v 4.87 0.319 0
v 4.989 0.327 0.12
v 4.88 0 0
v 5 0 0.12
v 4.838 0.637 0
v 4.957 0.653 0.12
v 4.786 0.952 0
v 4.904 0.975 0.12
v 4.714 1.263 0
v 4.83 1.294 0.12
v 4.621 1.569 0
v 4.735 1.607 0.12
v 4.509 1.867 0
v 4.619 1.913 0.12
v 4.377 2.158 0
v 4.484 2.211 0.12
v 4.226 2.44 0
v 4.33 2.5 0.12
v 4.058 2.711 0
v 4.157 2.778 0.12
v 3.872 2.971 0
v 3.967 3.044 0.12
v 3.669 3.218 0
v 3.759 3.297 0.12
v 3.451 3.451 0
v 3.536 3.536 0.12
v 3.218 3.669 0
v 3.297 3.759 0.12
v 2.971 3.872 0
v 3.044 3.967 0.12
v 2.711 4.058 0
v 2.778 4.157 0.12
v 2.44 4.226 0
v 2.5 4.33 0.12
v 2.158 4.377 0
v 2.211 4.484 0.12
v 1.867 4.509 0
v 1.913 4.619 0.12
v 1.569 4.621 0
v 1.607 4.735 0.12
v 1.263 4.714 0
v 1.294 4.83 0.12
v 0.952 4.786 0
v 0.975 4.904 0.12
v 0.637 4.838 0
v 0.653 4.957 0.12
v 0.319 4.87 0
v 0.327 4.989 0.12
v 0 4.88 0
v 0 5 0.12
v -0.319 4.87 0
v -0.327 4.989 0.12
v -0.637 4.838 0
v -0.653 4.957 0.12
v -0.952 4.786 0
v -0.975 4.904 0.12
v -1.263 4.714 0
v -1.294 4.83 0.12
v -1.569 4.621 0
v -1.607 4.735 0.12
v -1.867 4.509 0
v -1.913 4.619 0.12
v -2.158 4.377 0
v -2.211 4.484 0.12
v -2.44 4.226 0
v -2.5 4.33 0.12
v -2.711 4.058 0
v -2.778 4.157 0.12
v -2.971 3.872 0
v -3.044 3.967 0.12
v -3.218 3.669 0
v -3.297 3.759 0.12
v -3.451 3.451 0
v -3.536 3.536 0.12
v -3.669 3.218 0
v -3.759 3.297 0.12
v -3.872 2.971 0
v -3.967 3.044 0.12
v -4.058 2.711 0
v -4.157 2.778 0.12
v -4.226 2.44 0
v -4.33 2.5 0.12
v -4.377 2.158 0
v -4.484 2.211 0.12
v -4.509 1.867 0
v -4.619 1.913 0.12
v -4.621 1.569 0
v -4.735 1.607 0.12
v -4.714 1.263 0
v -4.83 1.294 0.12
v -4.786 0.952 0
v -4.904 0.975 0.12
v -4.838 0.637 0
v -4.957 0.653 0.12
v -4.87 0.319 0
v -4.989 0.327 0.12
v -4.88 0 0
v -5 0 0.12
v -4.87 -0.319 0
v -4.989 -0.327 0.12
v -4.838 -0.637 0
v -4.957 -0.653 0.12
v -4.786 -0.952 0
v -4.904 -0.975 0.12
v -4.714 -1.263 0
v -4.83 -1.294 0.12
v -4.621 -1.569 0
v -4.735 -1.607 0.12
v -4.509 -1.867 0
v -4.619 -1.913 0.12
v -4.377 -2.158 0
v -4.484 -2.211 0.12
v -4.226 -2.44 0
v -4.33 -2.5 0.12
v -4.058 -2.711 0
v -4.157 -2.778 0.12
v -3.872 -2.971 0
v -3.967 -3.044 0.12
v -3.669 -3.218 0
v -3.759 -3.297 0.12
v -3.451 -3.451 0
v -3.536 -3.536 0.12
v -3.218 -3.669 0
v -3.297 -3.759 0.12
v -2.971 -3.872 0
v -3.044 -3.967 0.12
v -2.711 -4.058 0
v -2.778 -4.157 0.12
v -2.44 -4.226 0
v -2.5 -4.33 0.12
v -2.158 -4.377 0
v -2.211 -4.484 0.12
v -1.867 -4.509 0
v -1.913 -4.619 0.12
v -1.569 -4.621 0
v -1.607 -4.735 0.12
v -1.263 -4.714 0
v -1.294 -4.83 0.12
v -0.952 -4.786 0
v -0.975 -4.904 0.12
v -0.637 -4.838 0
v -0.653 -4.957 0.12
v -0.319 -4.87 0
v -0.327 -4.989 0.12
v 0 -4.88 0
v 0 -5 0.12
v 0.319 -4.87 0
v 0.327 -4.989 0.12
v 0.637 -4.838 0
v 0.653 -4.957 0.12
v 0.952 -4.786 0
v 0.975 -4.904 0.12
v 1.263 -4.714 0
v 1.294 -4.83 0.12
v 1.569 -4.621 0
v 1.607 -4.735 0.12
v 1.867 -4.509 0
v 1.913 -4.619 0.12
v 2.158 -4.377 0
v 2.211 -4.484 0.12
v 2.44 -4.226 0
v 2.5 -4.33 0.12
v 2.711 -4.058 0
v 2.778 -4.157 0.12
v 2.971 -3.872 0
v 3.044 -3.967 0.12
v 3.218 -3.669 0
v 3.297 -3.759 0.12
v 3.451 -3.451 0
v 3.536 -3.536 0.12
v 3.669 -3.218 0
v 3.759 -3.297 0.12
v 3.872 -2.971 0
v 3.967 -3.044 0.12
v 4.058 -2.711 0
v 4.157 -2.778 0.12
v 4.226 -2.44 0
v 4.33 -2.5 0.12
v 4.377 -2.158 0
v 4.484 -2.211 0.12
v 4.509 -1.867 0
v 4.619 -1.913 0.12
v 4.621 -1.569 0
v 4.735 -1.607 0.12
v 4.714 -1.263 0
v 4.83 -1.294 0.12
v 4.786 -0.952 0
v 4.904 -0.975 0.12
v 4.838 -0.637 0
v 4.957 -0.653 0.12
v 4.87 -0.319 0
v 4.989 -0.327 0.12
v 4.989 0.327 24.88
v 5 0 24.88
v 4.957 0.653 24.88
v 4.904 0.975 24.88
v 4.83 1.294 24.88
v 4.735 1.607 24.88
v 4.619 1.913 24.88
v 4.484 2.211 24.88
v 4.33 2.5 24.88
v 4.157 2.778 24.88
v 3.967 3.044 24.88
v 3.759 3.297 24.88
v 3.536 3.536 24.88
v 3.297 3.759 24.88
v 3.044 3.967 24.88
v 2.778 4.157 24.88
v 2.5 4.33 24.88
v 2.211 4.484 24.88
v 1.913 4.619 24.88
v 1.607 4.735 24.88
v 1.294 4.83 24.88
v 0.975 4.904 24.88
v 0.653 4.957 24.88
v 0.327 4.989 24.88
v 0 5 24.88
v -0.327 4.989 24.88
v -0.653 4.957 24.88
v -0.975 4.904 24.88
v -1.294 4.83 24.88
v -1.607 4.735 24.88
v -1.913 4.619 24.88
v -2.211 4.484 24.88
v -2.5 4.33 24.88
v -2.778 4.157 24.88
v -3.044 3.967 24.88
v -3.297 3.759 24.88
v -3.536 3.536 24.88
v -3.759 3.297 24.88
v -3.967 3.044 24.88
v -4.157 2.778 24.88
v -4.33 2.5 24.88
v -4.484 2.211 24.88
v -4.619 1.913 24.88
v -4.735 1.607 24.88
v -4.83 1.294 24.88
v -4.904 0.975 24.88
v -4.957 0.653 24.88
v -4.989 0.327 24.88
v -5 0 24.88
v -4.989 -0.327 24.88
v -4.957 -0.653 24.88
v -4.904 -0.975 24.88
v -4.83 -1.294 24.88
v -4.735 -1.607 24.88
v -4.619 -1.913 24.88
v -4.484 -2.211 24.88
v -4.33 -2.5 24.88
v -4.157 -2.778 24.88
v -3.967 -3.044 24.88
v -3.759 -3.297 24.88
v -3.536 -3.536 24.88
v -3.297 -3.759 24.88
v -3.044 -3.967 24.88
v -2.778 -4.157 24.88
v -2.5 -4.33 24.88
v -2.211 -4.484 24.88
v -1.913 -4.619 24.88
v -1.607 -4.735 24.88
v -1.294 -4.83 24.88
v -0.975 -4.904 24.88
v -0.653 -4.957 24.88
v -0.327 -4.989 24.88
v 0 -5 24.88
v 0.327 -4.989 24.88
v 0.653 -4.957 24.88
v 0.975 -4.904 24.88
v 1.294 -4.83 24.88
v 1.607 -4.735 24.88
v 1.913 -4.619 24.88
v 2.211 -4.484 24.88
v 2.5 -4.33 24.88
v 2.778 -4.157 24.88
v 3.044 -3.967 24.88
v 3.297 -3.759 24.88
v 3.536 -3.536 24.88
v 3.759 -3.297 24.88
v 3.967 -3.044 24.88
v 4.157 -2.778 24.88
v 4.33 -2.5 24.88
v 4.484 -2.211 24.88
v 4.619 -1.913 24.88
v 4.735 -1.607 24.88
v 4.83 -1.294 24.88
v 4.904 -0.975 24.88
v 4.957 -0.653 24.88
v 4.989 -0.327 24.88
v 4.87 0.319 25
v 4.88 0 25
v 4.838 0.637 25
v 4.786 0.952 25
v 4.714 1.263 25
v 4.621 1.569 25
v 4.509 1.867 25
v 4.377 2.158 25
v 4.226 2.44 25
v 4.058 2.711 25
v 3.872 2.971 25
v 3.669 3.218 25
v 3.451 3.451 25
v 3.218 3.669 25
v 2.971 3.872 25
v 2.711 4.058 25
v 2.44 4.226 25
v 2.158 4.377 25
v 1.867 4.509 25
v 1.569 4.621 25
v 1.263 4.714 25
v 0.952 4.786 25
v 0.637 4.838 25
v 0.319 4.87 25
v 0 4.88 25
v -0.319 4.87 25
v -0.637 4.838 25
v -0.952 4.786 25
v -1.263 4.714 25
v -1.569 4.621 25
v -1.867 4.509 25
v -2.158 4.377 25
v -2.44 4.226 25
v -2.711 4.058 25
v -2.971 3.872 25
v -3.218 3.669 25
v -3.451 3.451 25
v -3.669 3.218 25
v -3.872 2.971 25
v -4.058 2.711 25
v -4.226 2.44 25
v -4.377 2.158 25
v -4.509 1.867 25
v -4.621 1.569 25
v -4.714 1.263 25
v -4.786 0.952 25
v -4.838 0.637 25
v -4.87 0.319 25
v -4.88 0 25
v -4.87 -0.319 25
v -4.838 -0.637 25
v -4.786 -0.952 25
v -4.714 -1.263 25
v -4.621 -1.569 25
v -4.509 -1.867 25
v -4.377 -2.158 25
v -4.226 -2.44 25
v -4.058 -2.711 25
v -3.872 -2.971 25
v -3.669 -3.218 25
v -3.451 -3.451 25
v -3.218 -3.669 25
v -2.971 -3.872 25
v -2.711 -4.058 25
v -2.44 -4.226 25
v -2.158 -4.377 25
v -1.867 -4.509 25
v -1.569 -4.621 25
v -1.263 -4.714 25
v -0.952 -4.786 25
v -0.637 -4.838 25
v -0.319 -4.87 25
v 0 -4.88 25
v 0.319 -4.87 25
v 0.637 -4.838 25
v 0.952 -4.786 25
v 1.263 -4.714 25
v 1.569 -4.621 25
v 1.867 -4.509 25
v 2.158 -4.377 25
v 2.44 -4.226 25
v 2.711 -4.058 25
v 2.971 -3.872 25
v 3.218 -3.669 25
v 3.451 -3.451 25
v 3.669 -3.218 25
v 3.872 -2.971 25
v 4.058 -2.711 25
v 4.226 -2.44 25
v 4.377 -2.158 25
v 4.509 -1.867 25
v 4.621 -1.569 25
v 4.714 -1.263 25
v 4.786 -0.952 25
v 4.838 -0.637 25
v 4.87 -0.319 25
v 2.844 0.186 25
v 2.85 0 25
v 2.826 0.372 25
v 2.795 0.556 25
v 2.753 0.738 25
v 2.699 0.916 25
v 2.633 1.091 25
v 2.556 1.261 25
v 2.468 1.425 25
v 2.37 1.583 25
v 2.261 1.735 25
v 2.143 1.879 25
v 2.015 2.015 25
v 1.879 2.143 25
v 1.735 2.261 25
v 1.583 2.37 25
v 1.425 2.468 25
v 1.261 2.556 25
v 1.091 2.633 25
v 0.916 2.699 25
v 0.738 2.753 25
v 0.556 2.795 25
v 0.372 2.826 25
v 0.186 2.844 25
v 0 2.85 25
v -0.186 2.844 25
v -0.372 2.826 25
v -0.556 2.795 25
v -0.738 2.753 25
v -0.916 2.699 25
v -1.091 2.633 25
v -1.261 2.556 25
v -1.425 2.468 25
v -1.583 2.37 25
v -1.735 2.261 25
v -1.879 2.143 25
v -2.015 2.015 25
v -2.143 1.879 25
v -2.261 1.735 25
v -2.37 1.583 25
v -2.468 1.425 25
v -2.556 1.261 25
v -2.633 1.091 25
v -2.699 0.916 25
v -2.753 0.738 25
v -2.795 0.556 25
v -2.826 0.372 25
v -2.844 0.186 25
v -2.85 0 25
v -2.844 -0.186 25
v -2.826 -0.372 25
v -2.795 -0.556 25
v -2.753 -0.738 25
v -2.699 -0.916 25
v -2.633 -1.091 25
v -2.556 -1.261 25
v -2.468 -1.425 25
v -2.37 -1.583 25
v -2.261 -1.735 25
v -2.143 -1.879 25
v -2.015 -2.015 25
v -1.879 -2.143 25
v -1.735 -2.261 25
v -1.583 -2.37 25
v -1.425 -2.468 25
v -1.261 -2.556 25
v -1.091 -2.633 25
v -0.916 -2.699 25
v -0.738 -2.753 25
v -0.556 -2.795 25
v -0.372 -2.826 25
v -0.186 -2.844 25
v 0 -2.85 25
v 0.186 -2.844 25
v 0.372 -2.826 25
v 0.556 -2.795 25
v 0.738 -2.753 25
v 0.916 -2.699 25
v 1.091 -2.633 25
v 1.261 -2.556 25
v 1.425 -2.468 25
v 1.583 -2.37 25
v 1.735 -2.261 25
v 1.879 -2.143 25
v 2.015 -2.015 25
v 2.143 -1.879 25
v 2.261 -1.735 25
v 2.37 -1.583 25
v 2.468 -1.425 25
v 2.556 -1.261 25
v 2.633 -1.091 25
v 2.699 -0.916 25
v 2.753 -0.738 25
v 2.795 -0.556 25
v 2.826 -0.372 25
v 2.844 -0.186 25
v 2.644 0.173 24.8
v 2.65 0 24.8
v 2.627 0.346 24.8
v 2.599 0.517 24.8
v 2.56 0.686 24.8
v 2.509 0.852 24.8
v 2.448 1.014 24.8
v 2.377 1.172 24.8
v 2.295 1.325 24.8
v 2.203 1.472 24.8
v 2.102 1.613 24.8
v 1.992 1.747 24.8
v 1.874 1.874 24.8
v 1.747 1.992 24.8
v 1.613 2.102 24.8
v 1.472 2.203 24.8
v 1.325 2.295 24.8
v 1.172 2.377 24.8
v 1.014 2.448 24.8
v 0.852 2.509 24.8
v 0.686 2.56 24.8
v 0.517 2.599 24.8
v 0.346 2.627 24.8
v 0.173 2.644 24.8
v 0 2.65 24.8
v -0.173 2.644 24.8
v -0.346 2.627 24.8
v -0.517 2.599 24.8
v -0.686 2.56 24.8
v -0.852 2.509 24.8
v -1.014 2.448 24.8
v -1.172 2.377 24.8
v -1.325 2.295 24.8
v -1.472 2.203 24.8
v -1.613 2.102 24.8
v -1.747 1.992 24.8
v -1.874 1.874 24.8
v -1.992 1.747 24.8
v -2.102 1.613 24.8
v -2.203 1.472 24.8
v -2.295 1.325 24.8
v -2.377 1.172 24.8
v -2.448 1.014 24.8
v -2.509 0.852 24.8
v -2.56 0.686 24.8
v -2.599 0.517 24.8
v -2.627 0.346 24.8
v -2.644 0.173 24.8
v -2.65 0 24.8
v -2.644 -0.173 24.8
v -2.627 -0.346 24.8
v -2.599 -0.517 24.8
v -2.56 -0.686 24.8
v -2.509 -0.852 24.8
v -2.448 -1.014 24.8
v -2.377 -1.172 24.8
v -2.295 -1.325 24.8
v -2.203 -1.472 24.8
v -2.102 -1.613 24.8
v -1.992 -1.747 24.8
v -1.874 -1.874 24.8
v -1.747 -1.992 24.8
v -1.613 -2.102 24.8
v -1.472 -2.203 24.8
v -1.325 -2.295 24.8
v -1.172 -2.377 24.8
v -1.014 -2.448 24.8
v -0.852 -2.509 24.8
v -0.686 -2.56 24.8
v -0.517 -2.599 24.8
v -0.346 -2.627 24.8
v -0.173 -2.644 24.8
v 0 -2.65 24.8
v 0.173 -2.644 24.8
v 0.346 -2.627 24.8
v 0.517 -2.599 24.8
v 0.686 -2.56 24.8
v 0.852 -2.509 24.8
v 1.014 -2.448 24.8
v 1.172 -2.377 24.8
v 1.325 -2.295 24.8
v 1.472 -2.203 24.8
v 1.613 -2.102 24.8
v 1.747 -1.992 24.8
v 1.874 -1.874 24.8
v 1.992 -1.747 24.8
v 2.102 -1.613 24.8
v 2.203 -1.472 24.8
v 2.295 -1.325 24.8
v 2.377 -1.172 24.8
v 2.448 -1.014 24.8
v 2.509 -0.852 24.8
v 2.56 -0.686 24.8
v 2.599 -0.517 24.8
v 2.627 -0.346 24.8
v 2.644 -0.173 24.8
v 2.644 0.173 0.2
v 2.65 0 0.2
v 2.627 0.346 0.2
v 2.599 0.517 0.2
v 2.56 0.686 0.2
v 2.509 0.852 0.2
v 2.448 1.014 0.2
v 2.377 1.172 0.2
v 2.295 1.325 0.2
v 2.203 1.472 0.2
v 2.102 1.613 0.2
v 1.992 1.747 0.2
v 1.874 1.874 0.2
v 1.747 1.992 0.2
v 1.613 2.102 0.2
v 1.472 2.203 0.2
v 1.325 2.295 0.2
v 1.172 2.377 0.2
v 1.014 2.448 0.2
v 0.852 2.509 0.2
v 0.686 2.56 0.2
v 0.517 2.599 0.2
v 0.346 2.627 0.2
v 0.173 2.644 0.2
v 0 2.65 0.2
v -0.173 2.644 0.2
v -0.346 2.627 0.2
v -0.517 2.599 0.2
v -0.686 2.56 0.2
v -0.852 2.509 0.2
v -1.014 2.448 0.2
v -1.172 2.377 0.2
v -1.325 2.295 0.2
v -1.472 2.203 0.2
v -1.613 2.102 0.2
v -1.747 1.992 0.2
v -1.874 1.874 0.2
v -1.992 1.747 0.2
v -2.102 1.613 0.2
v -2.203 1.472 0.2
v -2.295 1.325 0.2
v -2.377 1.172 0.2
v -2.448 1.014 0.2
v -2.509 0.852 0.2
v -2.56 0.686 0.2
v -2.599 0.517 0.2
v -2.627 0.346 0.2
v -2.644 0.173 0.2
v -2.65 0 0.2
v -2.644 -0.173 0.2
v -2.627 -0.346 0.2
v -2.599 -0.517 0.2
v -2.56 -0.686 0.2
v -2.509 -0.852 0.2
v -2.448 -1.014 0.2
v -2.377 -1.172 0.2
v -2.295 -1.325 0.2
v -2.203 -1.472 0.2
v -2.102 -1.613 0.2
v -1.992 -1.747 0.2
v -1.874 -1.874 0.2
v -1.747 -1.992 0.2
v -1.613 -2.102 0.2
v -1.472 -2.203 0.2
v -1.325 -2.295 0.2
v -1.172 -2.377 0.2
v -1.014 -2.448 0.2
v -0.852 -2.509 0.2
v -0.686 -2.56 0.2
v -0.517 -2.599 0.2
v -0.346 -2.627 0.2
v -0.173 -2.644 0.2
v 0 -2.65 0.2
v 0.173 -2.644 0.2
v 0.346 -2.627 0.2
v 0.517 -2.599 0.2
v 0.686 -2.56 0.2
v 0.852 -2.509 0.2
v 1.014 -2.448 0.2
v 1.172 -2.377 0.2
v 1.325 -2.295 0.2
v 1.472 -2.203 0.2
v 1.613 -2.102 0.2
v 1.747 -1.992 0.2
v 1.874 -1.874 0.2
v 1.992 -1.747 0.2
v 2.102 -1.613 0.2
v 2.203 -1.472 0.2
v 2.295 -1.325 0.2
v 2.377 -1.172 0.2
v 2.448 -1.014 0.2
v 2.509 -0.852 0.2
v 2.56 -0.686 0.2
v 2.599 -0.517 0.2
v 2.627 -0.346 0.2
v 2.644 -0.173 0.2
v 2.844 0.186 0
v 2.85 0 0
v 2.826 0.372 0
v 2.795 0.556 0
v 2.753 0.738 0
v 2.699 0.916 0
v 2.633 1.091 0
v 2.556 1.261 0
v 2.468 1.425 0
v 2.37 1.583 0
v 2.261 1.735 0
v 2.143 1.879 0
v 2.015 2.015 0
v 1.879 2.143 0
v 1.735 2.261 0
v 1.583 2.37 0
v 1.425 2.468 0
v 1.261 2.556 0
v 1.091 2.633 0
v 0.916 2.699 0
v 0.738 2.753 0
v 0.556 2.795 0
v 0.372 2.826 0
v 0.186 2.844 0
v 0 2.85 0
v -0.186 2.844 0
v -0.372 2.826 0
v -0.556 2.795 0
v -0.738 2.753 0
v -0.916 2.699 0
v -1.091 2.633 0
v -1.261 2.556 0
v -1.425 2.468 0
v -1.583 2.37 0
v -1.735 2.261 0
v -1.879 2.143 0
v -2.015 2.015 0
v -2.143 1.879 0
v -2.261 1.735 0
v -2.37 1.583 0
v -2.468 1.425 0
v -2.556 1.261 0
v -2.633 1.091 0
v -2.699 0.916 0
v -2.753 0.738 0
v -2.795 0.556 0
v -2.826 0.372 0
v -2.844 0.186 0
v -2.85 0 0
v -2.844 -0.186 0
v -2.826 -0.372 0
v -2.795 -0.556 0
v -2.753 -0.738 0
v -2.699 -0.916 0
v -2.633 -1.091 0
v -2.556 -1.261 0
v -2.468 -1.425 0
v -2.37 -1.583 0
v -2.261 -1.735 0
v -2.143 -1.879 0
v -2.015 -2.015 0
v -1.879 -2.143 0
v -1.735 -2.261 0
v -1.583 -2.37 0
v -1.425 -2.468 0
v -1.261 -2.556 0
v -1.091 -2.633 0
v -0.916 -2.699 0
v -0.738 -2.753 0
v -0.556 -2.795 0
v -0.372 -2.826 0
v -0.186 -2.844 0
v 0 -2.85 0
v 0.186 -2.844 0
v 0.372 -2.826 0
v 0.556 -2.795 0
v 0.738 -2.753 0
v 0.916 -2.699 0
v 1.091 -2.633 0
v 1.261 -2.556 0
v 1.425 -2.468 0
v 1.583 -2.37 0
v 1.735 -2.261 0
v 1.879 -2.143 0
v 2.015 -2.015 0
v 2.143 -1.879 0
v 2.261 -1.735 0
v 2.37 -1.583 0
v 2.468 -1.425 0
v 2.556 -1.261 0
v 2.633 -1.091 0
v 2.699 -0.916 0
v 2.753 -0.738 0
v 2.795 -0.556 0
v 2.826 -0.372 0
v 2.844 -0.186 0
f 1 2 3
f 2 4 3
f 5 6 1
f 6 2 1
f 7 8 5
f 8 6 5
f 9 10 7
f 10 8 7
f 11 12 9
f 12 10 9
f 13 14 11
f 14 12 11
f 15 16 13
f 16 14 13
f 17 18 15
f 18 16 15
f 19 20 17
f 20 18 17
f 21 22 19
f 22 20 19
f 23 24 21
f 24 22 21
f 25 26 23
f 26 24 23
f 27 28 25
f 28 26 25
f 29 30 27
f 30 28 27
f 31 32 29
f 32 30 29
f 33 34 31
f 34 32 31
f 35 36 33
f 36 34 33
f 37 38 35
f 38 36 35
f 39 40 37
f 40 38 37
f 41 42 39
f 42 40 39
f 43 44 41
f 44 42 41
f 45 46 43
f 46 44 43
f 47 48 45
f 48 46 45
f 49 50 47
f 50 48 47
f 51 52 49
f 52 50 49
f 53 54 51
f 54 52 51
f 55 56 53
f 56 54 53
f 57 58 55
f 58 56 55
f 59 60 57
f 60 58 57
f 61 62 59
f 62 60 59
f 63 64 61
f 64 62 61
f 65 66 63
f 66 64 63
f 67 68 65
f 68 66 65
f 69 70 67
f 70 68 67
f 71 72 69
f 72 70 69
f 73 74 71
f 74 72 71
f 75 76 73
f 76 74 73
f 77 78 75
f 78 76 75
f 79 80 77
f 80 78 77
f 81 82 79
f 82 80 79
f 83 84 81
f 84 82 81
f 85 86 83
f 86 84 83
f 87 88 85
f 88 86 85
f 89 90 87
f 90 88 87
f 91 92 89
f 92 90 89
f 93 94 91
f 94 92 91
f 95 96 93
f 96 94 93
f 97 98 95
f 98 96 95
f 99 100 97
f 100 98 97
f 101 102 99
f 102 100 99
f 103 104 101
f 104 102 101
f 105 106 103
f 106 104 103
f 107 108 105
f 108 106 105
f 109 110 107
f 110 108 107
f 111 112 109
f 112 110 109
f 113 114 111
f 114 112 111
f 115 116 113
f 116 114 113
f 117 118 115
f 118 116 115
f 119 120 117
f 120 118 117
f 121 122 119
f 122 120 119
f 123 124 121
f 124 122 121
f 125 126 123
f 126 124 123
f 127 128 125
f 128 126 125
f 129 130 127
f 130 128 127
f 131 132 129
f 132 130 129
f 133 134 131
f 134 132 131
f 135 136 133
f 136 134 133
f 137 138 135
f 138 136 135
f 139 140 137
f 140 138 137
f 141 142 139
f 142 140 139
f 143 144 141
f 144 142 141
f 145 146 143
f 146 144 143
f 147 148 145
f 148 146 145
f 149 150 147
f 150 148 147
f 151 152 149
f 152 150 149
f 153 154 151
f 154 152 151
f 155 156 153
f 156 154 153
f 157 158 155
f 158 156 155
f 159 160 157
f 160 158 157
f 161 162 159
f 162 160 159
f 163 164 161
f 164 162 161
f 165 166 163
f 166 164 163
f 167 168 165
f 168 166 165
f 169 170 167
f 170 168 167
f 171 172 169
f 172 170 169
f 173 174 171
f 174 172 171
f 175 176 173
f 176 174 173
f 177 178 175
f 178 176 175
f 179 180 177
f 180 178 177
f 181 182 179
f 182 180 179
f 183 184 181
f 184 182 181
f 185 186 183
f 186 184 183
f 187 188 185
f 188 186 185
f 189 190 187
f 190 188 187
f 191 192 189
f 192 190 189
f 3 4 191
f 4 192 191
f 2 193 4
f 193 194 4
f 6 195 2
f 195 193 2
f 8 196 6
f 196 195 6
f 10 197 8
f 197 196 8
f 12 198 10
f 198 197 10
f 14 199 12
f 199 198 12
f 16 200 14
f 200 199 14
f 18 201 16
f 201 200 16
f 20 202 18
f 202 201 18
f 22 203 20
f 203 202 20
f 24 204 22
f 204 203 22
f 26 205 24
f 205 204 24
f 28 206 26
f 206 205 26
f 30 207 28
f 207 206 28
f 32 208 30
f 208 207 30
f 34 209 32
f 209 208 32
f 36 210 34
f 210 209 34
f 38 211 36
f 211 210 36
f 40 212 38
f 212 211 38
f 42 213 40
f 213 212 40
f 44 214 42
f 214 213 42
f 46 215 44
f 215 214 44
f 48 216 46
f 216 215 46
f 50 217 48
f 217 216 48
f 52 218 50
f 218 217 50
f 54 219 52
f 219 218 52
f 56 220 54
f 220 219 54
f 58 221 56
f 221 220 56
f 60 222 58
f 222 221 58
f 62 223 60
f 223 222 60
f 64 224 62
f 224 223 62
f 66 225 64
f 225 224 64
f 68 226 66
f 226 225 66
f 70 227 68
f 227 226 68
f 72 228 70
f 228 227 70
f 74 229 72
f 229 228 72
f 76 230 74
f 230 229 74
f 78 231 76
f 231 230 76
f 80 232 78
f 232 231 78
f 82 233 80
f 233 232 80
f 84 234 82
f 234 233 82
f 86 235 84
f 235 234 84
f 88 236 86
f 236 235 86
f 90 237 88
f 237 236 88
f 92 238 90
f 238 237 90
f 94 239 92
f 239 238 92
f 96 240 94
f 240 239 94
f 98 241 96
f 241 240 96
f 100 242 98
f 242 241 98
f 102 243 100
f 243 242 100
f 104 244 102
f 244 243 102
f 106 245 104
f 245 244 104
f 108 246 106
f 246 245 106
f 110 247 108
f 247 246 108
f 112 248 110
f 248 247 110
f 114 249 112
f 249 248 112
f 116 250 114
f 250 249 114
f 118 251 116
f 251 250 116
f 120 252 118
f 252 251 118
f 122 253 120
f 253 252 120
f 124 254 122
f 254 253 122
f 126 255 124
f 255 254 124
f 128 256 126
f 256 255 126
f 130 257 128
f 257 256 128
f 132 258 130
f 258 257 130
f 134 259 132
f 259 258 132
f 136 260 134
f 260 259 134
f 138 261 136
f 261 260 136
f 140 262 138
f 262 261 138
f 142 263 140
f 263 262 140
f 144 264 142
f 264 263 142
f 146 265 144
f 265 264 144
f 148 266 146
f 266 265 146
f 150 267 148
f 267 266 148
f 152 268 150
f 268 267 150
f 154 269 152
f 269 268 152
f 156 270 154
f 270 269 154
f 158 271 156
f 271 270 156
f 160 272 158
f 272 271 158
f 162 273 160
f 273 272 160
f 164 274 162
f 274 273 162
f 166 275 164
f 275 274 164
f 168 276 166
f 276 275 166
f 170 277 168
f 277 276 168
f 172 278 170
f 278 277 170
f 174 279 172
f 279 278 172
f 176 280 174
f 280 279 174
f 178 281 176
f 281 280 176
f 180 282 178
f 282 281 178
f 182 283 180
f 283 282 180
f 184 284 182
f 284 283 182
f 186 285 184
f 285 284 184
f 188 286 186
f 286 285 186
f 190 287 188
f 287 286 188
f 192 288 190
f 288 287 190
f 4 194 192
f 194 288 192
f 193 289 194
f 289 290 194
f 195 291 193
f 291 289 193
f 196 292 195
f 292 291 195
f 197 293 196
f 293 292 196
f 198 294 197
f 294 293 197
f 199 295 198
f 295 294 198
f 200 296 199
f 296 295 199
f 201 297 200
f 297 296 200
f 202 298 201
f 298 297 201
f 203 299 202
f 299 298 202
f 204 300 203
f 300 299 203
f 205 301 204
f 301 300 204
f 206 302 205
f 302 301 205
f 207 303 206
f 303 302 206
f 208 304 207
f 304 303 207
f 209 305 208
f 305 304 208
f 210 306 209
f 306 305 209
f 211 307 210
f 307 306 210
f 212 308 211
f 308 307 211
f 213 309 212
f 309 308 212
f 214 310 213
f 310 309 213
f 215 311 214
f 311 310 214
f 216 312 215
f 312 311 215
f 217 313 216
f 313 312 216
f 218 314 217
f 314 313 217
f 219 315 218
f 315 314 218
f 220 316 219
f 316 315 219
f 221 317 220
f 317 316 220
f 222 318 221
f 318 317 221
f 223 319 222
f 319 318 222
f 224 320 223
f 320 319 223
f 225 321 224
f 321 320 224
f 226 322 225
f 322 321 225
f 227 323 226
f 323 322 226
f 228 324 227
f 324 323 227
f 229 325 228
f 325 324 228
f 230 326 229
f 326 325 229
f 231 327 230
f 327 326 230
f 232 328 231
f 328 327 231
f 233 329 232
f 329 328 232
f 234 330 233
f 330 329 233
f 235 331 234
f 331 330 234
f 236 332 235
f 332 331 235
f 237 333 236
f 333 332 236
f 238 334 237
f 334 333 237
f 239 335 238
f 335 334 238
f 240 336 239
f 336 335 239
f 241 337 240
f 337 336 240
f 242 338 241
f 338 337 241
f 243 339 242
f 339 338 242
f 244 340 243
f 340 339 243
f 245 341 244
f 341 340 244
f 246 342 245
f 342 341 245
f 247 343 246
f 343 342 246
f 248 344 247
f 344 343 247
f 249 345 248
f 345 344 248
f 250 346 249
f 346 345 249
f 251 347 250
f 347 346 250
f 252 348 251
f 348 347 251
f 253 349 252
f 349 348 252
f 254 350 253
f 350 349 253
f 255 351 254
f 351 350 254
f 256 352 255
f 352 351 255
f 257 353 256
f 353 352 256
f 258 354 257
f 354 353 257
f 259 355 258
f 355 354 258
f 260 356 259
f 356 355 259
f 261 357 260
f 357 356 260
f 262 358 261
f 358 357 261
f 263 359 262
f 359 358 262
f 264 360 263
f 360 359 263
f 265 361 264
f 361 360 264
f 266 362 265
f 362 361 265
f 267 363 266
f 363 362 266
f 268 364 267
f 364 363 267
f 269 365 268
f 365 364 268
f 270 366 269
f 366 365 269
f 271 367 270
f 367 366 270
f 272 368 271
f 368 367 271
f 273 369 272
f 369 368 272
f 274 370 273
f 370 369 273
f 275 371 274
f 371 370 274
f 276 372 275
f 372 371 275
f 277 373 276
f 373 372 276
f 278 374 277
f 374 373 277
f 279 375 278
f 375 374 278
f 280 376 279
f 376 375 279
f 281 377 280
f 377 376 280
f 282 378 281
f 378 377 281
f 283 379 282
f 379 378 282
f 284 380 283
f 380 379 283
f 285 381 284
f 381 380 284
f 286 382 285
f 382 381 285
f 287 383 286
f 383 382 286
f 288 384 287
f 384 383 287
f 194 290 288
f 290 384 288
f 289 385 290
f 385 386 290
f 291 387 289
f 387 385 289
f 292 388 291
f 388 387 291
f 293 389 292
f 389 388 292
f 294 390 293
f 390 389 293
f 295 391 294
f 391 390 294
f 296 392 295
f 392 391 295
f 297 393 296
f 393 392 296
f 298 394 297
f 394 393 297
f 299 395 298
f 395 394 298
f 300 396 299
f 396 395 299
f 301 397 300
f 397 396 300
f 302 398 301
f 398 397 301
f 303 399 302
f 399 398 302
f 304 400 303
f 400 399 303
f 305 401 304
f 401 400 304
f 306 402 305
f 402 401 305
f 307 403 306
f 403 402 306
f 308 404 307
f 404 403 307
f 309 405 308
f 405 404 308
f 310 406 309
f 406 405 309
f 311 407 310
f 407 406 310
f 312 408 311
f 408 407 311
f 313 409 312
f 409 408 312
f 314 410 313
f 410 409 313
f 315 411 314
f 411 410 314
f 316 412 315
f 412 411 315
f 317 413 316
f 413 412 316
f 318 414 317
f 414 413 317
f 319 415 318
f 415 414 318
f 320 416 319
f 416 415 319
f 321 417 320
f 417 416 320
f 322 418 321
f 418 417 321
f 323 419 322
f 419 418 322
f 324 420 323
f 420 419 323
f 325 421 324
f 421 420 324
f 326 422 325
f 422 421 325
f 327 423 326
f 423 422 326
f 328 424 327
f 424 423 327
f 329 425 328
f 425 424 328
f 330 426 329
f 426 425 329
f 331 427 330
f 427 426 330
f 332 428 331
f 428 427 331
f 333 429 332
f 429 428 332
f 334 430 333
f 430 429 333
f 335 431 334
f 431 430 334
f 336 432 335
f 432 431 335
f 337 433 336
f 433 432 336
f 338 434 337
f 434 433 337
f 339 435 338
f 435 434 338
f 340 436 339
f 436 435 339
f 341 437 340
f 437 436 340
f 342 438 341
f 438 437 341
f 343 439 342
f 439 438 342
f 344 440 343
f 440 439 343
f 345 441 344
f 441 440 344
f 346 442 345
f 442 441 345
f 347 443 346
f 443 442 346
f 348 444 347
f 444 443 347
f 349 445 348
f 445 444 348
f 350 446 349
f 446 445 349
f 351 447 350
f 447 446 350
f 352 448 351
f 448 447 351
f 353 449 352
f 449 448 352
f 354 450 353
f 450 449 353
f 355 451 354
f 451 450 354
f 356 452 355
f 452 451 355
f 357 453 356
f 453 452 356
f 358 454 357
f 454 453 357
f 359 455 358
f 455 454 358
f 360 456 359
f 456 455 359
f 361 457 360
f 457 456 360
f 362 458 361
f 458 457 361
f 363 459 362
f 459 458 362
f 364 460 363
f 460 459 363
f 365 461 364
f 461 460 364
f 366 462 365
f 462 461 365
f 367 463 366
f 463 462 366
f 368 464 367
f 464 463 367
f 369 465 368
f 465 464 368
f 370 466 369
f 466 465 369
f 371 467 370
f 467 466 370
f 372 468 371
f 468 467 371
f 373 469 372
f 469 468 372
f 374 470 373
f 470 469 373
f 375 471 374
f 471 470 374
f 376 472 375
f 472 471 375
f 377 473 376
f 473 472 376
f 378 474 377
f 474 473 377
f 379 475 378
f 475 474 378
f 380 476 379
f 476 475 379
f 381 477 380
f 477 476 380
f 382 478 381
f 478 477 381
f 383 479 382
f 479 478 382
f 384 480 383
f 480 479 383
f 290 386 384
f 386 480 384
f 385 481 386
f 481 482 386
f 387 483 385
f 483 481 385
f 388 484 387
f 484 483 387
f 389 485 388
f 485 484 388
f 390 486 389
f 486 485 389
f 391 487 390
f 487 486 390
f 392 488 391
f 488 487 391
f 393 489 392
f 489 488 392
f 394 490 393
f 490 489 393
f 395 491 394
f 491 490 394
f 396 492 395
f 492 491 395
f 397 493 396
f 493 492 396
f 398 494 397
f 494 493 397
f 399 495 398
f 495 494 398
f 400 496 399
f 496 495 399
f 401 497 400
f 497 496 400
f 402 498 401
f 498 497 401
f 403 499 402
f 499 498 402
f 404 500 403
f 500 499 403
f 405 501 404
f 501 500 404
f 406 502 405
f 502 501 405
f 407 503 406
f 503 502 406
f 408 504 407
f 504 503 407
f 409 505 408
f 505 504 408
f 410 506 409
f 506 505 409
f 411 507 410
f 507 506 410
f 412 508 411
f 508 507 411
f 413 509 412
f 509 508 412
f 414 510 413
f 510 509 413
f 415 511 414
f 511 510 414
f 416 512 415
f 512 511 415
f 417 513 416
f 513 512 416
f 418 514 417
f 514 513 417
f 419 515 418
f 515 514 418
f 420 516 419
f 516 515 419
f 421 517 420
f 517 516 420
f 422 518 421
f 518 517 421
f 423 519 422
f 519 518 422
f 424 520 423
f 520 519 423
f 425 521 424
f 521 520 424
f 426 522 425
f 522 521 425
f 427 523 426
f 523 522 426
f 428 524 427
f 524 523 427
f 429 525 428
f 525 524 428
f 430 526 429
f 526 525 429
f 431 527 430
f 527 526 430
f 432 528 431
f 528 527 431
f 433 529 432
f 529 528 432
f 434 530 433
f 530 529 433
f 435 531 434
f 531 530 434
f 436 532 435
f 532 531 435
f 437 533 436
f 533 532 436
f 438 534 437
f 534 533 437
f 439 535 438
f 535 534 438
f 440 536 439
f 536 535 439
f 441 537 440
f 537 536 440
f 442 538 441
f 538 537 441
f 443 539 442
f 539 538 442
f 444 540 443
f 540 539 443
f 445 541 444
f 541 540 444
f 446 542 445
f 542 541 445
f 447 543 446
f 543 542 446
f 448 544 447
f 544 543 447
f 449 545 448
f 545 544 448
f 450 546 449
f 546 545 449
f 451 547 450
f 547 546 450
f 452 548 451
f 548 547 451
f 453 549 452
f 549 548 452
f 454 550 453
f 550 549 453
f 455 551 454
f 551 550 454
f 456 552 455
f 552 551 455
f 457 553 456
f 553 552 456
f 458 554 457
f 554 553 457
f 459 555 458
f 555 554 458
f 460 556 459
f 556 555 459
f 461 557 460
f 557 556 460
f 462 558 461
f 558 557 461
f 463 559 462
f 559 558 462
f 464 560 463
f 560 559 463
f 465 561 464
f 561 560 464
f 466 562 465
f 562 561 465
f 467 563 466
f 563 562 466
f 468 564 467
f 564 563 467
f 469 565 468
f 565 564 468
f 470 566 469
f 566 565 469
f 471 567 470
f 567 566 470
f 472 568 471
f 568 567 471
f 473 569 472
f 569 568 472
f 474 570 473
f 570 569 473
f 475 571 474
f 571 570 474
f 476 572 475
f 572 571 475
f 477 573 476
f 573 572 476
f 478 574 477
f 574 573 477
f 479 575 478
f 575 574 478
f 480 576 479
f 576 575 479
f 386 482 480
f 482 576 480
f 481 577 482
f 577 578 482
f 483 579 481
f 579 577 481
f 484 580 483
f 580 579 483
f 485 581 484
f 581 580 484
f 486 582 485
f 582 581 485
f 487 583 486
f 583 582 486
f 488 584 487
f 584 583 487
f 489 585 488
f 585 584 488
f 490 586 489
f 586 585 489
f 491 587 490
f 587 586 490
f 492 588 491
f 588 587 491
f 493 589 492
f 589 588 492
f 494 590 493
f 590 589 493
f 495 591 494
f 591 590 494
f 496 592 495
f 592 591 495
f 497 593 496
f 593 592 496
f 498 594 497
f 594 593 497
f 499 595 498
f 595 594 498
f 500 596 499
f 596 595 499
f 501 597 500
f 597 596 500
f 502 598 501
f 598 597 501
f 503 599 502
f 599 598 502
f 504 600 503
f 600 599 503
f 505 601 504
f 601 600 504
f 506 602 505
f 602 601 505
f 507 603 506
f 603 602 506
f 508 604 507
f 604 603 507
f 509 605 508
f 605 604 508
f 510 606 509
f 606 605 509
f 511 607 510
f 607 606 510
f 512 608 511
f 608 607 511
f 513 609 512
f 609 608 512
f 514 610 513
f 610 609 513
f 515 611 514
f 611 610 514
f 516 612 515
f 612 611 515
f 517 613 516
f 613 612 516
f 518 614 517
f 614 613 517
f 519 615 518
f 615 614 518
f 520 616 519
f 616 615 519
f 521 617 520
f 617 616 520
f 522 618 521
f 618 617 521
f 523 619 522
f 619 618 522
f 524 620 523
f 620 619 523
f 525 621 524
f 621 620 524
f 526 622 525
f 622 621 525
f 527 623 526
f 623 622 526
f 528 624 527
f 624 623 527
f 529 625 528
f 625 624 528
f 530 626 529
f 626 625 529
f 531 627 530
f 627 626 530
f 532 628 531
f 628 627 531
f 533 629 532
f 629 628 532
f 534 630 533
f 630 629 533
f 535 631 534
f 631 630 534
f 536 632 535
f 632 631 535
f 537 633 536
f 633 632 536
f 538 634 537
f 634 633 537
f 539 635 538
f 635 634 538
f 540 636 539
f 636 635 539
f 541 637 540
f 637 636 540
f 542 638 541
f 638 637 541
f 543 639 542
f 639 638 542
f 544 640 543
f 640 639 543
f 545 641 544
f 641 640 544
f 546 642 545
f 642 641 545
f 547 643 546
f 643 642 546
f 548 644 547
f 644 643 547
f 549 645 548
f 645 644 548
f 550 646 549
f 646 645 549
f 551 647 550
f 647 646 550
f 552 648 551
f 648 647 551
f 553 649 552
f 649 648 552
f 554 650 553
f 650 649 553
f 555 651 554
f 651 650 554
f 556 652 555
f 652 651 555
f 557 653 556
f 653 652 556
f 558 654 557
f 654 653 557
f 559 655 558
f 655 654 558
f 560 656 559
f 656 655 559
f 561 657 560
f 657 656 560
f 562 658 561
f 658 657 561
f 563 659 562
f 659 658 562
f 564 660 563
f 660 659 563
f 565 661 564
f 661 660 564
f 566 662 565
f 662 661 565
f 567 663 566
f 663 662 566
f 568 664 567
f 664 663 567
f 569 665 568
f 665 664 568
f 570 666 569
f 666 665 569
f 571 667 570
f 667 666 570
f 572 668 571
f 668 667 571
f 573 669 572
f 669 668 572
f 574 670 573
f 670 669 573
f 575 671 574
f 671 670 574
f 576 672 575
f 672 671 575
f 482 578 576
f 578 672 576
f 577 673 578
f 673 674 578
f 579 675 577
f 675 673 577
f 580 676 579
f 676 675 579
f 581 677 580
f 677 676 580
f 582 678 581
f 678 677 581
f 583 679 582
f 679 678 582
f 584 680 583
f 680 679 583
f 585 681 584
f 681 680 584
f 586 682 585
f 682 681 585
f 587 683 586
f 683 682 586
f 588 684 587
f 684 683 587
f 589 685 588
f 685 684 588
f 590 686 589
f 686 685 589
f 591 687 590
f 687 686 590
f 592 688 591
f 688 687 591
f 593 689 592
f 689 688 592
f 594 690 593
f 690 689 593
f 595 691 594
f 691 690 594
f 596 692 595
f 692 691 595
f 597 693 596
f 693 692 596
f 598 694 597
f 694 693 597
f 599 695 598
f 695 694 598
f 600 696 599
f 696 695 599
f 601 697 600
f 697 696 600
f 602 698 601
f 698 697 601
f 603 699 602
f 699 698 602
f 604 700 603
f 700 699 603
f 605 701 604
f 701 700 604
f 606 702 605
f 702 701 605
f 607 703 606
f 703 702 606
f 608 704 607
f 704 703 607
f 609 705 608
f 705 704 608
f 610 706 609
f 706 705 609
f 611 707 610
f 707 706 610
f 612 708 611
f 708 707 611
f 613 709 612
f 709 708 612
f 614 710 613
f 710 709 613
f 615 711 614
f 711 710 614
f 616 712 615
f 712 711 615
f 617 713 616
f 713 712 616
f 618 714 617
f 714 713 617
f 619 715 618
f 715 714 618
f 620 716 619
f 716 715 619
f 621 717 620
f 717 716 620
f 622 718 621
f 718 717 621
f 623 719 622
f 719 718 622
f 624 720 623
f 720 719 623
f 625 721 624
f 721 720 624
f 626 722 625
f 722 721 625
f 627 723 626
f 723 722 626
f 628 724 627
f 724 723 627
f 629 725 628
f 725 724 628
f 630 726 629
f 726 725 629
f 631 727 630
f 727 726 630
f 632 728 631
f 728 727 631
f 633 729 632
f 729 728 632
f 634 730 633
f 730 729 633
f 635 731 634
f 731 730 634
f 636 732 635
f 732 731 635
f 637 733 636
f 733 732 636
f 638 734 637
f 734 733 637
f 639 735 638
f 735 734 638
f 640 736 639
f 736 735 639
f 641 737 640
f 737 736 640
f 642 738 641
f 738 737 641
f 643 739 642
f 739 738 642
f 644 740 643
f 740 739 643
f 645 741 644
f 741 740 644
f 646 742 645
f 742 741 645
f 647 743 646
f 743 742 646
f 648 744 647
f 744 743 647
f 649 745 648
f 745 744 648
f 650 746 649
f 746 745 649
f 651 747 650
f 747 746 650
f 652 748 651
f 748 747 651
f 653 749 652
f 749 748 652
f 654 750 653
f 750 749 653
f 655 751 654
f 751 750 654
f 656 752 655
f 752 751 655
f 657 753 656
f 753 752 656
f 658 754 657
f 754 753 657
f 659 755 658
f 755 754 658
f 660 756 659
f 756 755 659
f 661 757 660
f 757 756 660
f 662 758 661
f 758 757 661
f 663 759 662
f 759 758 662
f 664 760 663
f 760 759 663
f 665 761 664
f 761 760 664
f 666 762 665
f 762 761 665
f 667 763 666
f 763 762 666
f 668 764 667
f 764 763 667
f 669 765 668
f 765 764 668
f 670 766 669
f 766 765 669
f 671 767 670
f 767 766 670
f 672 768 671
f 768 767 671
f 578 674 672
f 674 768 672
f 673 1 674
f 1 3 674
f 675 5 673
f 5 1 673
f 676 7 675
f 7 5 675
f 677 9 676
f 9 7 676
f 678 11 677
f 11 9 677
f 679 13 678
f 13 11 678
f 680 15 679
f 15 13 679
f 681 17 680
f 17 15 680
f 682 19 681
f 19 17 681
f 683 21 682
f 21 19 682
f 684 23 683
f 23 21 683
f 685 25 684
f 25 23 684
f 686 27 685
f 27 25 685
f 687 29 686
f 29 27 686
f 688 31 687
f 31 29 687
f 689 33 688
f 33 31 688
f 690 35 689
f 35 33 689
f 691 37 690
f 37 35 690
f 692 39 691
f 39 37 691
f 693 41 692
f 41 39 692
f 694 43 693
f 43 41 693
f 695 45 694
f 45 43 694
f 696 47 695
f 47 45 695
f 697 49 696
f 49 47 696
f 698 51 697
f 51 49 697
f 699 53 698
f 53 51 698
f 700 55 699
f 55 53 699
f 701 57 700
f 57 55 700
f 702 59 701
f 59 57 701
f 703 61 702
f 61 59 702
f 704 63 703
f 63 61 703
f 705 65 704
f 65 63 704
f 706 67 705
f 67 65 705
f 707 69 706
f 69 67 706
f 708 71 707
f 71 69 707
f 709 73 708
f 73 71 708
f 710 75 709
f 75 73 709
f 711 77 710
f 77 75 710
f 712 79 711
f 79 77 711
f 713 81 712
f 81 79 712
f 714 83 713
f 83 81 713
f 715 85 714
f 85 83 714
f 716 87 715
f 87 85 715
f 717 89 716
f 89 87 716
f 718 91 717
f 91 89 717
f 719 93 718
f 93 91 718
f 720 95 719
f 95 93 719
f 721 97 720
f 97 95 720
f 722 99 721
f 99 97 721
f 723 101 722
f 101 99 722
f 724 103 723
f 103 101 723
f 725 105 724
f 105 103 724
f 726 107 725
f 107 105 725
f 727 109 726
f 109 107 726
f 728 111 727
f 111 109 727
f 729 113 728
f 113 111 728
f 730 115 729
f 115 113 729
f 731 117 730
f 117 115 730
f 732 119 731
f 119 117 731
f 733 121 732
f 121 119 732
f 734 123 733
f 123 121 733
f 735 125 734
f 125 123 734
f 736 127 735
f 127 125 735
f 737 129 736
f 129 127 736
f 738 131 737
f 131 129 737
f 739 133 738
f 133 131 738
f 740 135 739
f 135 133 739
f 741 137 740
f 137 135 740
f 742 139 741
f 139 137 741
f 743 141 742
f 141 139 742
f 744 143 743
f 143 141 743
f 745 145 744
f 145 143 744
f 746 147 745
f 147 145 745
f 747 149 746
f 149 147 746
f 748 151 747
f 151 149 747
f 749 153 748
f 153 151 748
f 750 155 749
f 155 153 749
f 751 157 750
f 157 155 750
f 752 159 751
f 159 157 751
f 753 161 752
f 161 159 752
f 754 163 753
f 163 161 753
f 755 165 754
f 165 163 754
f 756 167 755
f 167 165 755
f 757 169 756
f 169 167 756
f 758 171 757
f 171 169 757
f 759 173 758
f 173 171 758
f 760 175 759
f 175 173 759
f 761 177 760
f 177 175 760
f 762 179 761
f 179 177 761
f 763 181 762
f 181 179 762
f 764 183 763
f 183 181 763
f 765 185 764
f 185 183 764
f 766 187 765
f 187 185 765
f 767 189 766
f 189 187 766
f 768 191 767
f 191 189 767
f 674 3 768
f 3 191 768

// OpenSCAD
// OOMP generic catalogue model; units: mm.
// Stud length is additional to body depth. Tapping depths are model assumptions.
variant = "full"; // [full, display]
family = "spacer";
connection_type = "plain";
depth_mm = 25;
stud_length_mm = 0;
tapped_depth_mm = 0;
bore_mm = 5.3;
outer_diameter_mm = 10;
across_flats_mm = 6;
thread_nominal_diameter_mm = 3;
thread_pitch_mm = 0.5;
edge_chamfer_mm = 0.12;
mouth_chamfer_mm = 0.2;
angular_segments = 96;
samples_per_pitch = 16;

// Boundary travels up the outside, then down any tapped/plain bore.
// Equal-height rings at shoulders form the annular shoulder faces.
n = angular_segments;
threaded = family == "standoff";
has_stud = connection_type == "stud_to_tapped" || connection_type == "stud_to_stud";
two_studs = connection_type == "stud_to_stud";
through = !threaded || connection_type == "tapped_to_tapped";
pitch = thread_pitch_mm;
diameter = threaded ? thread_nominal_diameter_mm : bore_mm;
minor = diameter - 5*sqrt(3)*pitch/8;
transition = mouth_chamfer_mm + (threaded ? 5*sqrt(3)*pitch/16 : 0);
tip_chamfer = mouth_chamfer_mm + 17*sqrt(3)*pitch/48;
function sorted(v) = len(v)<=1 ? v : let(p=v[0])
    concat(sorted([for(x=v) if(x<p-1e-8) x]), [p], sorted([for(x=v) if(x>p+1e-8) x]));
function reverse(v) = [for(i=[len(v)-1:-1:0]) v[i]];
function theta(i) = i*360/n;
function fract(x) = x-floor(x);
function phase_distance(i,z) = abs(fract(z/pitch-theta(i)/360+0.5)-0.5);
function thread_r(i,z) = minor/2 + min(5*sqrt(3)*pitch/16,
    max(0,(phase_distance(i,z)-0.125)*pitch*sqrt(3)));
function stud_r(i,z,tip) = min(diameter/2 - (variant=="full" ?
    min(17*sqrt(3)*pitch/48,max(0,(phase_distance(i,z)-0.0625)*pitch*sqrt(3))) : 0),
    diameter/2-tip_chamfer+abs(z-tip));
function body_r(i,z) = (threaded ? across_flats_mm/2/cos(theta(i)%60-30) : outer_diameter_mm/2)
    - max(0,edge_chamfer_mm-min(z,depth_mm-z));
function bore_r(i,z) = max(threaded ? (variant=="full" ? thread_r(i,z) : minor/2) : diameter/2,
    diameter/2+mouth_chamfer_mm-(through ? min(z,depth_mm-z) : depth_mm-z));
function stud_z(a,b,tip) = let(count=variant=="full" ? ceil(stud_length_mm/pitch*samples_per_pitch) : 1)
    sorted(concat([for(i=[0:count]) a+(b-a)*i/count], [tip==a ? tip+tip_chamfer : tip-tip_chamfer]));
body_z = sorted([0,edge_chamfer_mm,depth_mm-edge_chamfer_mm,depth_mm]);
low = through ? 0 : depth_mm-tapped_depth_mm;
count = threaded && variant=="full" ? ceil((depth_mm-low)/pitch*samples_per_pitch) : 1;
bore_z = two_studs ? [] : reverse(sorted(concat(
    [for(i=[0:count]) low+(depth_mm-low)*i/count],
    [depth_mm-mouth_chamfer_mm,depth_mm-transition],
    through ? [mouth_chamfer_mm,transition] : [])));
// Ring descriptors: [height, kind, tip]. Kind: 0 body, 1 stud, 2 bore.
rings = concat(
    has_stud ? [for(z=stud_z(-stud_length_mm,0,-stud_length_mm)) [z,1,-stud_length_mm]] : [],
    [for(z=body_z) [z,0,0]],
    two_studs ? [for(z=stud_z(depth_mm,depth_mm+stud_length_mm,depth_mm+stud_length_mm)) [z,1,depth_mm+stud_length_mm]] : [],
    [for(z=bore_z) [z,2,0]]);
function radius(i,ring) = ring[1]==0 ? body_r(i,ring[0]) :
    ring[1]==1 ? stud_r(i,ring[0],ring[2]) : bore_r(i,ring[0]);
points = concat([for(ring=rings) for(i=[0:n-1])
    [radius(i,ring)*cos(theta(i)),radius(i,ring)*sin(theta(i)),ring[0]]],
    through ? [] : [[0,0,rings[0][0]],[0,0,rings[len(rings)-1][0]]]);
center = len(rings)*n;
last = (len(rings)-1)*n;
// OpenSCAD winding is opposite to STL winding.
faces = concat(
    [for(j=[0:len(rings)-(through ? 1 : 2)]) for(i=[0:n-1]) each
        let(a=j*n+i,b=j*n+(i+1)%n,c=((j+1)%len(rings))*n+(i+1)%n,d=((j+1)%len(rings))*n+i)
        [[a,c,b],[a,d,c]]],
    through ? [] : [for(i=[0:n-1]) each let(k=(i+1)%n)
        [[center,i,k],[center+1,last+k,last+i]]]);
assert(family=="spacer" || family=="standoff");
assert(!threaded || connection_type=="tapped_to_tapped" || has_stud);
assert(depth_mm>0 && diameter>0 && pitch>0);
assert(variant=="full" || variant=="display");
assert(n>=24 && n%12==0 && samples_per_pitch>=8);
assert(mouth_chamfer_mm>0 && mouth_chamfer_mm<depth_mm/2);
assert(edge_chamfer_mm>=0 && edge_chamfer_mm<depth_mm/2);
assert(diameter+4*max(mouth_chamfer_mm,edge_chamfer_mm) < (threaded ? across_flats_mm : outer_diameter_mm));
assert(!has_stud || stud_length_mm>2*mouth_chamfer_mm);
assert(!through || !threaded || 2*transition<depth_mm);
assert(connection_type!="stud_to_tapped" || (tapped_depth_mm>transition && tapped_depth_mm<depth_mm));
color([0.86,0.85,0.81]) polyhedron(points=points,faces=faces,convexity=20);
